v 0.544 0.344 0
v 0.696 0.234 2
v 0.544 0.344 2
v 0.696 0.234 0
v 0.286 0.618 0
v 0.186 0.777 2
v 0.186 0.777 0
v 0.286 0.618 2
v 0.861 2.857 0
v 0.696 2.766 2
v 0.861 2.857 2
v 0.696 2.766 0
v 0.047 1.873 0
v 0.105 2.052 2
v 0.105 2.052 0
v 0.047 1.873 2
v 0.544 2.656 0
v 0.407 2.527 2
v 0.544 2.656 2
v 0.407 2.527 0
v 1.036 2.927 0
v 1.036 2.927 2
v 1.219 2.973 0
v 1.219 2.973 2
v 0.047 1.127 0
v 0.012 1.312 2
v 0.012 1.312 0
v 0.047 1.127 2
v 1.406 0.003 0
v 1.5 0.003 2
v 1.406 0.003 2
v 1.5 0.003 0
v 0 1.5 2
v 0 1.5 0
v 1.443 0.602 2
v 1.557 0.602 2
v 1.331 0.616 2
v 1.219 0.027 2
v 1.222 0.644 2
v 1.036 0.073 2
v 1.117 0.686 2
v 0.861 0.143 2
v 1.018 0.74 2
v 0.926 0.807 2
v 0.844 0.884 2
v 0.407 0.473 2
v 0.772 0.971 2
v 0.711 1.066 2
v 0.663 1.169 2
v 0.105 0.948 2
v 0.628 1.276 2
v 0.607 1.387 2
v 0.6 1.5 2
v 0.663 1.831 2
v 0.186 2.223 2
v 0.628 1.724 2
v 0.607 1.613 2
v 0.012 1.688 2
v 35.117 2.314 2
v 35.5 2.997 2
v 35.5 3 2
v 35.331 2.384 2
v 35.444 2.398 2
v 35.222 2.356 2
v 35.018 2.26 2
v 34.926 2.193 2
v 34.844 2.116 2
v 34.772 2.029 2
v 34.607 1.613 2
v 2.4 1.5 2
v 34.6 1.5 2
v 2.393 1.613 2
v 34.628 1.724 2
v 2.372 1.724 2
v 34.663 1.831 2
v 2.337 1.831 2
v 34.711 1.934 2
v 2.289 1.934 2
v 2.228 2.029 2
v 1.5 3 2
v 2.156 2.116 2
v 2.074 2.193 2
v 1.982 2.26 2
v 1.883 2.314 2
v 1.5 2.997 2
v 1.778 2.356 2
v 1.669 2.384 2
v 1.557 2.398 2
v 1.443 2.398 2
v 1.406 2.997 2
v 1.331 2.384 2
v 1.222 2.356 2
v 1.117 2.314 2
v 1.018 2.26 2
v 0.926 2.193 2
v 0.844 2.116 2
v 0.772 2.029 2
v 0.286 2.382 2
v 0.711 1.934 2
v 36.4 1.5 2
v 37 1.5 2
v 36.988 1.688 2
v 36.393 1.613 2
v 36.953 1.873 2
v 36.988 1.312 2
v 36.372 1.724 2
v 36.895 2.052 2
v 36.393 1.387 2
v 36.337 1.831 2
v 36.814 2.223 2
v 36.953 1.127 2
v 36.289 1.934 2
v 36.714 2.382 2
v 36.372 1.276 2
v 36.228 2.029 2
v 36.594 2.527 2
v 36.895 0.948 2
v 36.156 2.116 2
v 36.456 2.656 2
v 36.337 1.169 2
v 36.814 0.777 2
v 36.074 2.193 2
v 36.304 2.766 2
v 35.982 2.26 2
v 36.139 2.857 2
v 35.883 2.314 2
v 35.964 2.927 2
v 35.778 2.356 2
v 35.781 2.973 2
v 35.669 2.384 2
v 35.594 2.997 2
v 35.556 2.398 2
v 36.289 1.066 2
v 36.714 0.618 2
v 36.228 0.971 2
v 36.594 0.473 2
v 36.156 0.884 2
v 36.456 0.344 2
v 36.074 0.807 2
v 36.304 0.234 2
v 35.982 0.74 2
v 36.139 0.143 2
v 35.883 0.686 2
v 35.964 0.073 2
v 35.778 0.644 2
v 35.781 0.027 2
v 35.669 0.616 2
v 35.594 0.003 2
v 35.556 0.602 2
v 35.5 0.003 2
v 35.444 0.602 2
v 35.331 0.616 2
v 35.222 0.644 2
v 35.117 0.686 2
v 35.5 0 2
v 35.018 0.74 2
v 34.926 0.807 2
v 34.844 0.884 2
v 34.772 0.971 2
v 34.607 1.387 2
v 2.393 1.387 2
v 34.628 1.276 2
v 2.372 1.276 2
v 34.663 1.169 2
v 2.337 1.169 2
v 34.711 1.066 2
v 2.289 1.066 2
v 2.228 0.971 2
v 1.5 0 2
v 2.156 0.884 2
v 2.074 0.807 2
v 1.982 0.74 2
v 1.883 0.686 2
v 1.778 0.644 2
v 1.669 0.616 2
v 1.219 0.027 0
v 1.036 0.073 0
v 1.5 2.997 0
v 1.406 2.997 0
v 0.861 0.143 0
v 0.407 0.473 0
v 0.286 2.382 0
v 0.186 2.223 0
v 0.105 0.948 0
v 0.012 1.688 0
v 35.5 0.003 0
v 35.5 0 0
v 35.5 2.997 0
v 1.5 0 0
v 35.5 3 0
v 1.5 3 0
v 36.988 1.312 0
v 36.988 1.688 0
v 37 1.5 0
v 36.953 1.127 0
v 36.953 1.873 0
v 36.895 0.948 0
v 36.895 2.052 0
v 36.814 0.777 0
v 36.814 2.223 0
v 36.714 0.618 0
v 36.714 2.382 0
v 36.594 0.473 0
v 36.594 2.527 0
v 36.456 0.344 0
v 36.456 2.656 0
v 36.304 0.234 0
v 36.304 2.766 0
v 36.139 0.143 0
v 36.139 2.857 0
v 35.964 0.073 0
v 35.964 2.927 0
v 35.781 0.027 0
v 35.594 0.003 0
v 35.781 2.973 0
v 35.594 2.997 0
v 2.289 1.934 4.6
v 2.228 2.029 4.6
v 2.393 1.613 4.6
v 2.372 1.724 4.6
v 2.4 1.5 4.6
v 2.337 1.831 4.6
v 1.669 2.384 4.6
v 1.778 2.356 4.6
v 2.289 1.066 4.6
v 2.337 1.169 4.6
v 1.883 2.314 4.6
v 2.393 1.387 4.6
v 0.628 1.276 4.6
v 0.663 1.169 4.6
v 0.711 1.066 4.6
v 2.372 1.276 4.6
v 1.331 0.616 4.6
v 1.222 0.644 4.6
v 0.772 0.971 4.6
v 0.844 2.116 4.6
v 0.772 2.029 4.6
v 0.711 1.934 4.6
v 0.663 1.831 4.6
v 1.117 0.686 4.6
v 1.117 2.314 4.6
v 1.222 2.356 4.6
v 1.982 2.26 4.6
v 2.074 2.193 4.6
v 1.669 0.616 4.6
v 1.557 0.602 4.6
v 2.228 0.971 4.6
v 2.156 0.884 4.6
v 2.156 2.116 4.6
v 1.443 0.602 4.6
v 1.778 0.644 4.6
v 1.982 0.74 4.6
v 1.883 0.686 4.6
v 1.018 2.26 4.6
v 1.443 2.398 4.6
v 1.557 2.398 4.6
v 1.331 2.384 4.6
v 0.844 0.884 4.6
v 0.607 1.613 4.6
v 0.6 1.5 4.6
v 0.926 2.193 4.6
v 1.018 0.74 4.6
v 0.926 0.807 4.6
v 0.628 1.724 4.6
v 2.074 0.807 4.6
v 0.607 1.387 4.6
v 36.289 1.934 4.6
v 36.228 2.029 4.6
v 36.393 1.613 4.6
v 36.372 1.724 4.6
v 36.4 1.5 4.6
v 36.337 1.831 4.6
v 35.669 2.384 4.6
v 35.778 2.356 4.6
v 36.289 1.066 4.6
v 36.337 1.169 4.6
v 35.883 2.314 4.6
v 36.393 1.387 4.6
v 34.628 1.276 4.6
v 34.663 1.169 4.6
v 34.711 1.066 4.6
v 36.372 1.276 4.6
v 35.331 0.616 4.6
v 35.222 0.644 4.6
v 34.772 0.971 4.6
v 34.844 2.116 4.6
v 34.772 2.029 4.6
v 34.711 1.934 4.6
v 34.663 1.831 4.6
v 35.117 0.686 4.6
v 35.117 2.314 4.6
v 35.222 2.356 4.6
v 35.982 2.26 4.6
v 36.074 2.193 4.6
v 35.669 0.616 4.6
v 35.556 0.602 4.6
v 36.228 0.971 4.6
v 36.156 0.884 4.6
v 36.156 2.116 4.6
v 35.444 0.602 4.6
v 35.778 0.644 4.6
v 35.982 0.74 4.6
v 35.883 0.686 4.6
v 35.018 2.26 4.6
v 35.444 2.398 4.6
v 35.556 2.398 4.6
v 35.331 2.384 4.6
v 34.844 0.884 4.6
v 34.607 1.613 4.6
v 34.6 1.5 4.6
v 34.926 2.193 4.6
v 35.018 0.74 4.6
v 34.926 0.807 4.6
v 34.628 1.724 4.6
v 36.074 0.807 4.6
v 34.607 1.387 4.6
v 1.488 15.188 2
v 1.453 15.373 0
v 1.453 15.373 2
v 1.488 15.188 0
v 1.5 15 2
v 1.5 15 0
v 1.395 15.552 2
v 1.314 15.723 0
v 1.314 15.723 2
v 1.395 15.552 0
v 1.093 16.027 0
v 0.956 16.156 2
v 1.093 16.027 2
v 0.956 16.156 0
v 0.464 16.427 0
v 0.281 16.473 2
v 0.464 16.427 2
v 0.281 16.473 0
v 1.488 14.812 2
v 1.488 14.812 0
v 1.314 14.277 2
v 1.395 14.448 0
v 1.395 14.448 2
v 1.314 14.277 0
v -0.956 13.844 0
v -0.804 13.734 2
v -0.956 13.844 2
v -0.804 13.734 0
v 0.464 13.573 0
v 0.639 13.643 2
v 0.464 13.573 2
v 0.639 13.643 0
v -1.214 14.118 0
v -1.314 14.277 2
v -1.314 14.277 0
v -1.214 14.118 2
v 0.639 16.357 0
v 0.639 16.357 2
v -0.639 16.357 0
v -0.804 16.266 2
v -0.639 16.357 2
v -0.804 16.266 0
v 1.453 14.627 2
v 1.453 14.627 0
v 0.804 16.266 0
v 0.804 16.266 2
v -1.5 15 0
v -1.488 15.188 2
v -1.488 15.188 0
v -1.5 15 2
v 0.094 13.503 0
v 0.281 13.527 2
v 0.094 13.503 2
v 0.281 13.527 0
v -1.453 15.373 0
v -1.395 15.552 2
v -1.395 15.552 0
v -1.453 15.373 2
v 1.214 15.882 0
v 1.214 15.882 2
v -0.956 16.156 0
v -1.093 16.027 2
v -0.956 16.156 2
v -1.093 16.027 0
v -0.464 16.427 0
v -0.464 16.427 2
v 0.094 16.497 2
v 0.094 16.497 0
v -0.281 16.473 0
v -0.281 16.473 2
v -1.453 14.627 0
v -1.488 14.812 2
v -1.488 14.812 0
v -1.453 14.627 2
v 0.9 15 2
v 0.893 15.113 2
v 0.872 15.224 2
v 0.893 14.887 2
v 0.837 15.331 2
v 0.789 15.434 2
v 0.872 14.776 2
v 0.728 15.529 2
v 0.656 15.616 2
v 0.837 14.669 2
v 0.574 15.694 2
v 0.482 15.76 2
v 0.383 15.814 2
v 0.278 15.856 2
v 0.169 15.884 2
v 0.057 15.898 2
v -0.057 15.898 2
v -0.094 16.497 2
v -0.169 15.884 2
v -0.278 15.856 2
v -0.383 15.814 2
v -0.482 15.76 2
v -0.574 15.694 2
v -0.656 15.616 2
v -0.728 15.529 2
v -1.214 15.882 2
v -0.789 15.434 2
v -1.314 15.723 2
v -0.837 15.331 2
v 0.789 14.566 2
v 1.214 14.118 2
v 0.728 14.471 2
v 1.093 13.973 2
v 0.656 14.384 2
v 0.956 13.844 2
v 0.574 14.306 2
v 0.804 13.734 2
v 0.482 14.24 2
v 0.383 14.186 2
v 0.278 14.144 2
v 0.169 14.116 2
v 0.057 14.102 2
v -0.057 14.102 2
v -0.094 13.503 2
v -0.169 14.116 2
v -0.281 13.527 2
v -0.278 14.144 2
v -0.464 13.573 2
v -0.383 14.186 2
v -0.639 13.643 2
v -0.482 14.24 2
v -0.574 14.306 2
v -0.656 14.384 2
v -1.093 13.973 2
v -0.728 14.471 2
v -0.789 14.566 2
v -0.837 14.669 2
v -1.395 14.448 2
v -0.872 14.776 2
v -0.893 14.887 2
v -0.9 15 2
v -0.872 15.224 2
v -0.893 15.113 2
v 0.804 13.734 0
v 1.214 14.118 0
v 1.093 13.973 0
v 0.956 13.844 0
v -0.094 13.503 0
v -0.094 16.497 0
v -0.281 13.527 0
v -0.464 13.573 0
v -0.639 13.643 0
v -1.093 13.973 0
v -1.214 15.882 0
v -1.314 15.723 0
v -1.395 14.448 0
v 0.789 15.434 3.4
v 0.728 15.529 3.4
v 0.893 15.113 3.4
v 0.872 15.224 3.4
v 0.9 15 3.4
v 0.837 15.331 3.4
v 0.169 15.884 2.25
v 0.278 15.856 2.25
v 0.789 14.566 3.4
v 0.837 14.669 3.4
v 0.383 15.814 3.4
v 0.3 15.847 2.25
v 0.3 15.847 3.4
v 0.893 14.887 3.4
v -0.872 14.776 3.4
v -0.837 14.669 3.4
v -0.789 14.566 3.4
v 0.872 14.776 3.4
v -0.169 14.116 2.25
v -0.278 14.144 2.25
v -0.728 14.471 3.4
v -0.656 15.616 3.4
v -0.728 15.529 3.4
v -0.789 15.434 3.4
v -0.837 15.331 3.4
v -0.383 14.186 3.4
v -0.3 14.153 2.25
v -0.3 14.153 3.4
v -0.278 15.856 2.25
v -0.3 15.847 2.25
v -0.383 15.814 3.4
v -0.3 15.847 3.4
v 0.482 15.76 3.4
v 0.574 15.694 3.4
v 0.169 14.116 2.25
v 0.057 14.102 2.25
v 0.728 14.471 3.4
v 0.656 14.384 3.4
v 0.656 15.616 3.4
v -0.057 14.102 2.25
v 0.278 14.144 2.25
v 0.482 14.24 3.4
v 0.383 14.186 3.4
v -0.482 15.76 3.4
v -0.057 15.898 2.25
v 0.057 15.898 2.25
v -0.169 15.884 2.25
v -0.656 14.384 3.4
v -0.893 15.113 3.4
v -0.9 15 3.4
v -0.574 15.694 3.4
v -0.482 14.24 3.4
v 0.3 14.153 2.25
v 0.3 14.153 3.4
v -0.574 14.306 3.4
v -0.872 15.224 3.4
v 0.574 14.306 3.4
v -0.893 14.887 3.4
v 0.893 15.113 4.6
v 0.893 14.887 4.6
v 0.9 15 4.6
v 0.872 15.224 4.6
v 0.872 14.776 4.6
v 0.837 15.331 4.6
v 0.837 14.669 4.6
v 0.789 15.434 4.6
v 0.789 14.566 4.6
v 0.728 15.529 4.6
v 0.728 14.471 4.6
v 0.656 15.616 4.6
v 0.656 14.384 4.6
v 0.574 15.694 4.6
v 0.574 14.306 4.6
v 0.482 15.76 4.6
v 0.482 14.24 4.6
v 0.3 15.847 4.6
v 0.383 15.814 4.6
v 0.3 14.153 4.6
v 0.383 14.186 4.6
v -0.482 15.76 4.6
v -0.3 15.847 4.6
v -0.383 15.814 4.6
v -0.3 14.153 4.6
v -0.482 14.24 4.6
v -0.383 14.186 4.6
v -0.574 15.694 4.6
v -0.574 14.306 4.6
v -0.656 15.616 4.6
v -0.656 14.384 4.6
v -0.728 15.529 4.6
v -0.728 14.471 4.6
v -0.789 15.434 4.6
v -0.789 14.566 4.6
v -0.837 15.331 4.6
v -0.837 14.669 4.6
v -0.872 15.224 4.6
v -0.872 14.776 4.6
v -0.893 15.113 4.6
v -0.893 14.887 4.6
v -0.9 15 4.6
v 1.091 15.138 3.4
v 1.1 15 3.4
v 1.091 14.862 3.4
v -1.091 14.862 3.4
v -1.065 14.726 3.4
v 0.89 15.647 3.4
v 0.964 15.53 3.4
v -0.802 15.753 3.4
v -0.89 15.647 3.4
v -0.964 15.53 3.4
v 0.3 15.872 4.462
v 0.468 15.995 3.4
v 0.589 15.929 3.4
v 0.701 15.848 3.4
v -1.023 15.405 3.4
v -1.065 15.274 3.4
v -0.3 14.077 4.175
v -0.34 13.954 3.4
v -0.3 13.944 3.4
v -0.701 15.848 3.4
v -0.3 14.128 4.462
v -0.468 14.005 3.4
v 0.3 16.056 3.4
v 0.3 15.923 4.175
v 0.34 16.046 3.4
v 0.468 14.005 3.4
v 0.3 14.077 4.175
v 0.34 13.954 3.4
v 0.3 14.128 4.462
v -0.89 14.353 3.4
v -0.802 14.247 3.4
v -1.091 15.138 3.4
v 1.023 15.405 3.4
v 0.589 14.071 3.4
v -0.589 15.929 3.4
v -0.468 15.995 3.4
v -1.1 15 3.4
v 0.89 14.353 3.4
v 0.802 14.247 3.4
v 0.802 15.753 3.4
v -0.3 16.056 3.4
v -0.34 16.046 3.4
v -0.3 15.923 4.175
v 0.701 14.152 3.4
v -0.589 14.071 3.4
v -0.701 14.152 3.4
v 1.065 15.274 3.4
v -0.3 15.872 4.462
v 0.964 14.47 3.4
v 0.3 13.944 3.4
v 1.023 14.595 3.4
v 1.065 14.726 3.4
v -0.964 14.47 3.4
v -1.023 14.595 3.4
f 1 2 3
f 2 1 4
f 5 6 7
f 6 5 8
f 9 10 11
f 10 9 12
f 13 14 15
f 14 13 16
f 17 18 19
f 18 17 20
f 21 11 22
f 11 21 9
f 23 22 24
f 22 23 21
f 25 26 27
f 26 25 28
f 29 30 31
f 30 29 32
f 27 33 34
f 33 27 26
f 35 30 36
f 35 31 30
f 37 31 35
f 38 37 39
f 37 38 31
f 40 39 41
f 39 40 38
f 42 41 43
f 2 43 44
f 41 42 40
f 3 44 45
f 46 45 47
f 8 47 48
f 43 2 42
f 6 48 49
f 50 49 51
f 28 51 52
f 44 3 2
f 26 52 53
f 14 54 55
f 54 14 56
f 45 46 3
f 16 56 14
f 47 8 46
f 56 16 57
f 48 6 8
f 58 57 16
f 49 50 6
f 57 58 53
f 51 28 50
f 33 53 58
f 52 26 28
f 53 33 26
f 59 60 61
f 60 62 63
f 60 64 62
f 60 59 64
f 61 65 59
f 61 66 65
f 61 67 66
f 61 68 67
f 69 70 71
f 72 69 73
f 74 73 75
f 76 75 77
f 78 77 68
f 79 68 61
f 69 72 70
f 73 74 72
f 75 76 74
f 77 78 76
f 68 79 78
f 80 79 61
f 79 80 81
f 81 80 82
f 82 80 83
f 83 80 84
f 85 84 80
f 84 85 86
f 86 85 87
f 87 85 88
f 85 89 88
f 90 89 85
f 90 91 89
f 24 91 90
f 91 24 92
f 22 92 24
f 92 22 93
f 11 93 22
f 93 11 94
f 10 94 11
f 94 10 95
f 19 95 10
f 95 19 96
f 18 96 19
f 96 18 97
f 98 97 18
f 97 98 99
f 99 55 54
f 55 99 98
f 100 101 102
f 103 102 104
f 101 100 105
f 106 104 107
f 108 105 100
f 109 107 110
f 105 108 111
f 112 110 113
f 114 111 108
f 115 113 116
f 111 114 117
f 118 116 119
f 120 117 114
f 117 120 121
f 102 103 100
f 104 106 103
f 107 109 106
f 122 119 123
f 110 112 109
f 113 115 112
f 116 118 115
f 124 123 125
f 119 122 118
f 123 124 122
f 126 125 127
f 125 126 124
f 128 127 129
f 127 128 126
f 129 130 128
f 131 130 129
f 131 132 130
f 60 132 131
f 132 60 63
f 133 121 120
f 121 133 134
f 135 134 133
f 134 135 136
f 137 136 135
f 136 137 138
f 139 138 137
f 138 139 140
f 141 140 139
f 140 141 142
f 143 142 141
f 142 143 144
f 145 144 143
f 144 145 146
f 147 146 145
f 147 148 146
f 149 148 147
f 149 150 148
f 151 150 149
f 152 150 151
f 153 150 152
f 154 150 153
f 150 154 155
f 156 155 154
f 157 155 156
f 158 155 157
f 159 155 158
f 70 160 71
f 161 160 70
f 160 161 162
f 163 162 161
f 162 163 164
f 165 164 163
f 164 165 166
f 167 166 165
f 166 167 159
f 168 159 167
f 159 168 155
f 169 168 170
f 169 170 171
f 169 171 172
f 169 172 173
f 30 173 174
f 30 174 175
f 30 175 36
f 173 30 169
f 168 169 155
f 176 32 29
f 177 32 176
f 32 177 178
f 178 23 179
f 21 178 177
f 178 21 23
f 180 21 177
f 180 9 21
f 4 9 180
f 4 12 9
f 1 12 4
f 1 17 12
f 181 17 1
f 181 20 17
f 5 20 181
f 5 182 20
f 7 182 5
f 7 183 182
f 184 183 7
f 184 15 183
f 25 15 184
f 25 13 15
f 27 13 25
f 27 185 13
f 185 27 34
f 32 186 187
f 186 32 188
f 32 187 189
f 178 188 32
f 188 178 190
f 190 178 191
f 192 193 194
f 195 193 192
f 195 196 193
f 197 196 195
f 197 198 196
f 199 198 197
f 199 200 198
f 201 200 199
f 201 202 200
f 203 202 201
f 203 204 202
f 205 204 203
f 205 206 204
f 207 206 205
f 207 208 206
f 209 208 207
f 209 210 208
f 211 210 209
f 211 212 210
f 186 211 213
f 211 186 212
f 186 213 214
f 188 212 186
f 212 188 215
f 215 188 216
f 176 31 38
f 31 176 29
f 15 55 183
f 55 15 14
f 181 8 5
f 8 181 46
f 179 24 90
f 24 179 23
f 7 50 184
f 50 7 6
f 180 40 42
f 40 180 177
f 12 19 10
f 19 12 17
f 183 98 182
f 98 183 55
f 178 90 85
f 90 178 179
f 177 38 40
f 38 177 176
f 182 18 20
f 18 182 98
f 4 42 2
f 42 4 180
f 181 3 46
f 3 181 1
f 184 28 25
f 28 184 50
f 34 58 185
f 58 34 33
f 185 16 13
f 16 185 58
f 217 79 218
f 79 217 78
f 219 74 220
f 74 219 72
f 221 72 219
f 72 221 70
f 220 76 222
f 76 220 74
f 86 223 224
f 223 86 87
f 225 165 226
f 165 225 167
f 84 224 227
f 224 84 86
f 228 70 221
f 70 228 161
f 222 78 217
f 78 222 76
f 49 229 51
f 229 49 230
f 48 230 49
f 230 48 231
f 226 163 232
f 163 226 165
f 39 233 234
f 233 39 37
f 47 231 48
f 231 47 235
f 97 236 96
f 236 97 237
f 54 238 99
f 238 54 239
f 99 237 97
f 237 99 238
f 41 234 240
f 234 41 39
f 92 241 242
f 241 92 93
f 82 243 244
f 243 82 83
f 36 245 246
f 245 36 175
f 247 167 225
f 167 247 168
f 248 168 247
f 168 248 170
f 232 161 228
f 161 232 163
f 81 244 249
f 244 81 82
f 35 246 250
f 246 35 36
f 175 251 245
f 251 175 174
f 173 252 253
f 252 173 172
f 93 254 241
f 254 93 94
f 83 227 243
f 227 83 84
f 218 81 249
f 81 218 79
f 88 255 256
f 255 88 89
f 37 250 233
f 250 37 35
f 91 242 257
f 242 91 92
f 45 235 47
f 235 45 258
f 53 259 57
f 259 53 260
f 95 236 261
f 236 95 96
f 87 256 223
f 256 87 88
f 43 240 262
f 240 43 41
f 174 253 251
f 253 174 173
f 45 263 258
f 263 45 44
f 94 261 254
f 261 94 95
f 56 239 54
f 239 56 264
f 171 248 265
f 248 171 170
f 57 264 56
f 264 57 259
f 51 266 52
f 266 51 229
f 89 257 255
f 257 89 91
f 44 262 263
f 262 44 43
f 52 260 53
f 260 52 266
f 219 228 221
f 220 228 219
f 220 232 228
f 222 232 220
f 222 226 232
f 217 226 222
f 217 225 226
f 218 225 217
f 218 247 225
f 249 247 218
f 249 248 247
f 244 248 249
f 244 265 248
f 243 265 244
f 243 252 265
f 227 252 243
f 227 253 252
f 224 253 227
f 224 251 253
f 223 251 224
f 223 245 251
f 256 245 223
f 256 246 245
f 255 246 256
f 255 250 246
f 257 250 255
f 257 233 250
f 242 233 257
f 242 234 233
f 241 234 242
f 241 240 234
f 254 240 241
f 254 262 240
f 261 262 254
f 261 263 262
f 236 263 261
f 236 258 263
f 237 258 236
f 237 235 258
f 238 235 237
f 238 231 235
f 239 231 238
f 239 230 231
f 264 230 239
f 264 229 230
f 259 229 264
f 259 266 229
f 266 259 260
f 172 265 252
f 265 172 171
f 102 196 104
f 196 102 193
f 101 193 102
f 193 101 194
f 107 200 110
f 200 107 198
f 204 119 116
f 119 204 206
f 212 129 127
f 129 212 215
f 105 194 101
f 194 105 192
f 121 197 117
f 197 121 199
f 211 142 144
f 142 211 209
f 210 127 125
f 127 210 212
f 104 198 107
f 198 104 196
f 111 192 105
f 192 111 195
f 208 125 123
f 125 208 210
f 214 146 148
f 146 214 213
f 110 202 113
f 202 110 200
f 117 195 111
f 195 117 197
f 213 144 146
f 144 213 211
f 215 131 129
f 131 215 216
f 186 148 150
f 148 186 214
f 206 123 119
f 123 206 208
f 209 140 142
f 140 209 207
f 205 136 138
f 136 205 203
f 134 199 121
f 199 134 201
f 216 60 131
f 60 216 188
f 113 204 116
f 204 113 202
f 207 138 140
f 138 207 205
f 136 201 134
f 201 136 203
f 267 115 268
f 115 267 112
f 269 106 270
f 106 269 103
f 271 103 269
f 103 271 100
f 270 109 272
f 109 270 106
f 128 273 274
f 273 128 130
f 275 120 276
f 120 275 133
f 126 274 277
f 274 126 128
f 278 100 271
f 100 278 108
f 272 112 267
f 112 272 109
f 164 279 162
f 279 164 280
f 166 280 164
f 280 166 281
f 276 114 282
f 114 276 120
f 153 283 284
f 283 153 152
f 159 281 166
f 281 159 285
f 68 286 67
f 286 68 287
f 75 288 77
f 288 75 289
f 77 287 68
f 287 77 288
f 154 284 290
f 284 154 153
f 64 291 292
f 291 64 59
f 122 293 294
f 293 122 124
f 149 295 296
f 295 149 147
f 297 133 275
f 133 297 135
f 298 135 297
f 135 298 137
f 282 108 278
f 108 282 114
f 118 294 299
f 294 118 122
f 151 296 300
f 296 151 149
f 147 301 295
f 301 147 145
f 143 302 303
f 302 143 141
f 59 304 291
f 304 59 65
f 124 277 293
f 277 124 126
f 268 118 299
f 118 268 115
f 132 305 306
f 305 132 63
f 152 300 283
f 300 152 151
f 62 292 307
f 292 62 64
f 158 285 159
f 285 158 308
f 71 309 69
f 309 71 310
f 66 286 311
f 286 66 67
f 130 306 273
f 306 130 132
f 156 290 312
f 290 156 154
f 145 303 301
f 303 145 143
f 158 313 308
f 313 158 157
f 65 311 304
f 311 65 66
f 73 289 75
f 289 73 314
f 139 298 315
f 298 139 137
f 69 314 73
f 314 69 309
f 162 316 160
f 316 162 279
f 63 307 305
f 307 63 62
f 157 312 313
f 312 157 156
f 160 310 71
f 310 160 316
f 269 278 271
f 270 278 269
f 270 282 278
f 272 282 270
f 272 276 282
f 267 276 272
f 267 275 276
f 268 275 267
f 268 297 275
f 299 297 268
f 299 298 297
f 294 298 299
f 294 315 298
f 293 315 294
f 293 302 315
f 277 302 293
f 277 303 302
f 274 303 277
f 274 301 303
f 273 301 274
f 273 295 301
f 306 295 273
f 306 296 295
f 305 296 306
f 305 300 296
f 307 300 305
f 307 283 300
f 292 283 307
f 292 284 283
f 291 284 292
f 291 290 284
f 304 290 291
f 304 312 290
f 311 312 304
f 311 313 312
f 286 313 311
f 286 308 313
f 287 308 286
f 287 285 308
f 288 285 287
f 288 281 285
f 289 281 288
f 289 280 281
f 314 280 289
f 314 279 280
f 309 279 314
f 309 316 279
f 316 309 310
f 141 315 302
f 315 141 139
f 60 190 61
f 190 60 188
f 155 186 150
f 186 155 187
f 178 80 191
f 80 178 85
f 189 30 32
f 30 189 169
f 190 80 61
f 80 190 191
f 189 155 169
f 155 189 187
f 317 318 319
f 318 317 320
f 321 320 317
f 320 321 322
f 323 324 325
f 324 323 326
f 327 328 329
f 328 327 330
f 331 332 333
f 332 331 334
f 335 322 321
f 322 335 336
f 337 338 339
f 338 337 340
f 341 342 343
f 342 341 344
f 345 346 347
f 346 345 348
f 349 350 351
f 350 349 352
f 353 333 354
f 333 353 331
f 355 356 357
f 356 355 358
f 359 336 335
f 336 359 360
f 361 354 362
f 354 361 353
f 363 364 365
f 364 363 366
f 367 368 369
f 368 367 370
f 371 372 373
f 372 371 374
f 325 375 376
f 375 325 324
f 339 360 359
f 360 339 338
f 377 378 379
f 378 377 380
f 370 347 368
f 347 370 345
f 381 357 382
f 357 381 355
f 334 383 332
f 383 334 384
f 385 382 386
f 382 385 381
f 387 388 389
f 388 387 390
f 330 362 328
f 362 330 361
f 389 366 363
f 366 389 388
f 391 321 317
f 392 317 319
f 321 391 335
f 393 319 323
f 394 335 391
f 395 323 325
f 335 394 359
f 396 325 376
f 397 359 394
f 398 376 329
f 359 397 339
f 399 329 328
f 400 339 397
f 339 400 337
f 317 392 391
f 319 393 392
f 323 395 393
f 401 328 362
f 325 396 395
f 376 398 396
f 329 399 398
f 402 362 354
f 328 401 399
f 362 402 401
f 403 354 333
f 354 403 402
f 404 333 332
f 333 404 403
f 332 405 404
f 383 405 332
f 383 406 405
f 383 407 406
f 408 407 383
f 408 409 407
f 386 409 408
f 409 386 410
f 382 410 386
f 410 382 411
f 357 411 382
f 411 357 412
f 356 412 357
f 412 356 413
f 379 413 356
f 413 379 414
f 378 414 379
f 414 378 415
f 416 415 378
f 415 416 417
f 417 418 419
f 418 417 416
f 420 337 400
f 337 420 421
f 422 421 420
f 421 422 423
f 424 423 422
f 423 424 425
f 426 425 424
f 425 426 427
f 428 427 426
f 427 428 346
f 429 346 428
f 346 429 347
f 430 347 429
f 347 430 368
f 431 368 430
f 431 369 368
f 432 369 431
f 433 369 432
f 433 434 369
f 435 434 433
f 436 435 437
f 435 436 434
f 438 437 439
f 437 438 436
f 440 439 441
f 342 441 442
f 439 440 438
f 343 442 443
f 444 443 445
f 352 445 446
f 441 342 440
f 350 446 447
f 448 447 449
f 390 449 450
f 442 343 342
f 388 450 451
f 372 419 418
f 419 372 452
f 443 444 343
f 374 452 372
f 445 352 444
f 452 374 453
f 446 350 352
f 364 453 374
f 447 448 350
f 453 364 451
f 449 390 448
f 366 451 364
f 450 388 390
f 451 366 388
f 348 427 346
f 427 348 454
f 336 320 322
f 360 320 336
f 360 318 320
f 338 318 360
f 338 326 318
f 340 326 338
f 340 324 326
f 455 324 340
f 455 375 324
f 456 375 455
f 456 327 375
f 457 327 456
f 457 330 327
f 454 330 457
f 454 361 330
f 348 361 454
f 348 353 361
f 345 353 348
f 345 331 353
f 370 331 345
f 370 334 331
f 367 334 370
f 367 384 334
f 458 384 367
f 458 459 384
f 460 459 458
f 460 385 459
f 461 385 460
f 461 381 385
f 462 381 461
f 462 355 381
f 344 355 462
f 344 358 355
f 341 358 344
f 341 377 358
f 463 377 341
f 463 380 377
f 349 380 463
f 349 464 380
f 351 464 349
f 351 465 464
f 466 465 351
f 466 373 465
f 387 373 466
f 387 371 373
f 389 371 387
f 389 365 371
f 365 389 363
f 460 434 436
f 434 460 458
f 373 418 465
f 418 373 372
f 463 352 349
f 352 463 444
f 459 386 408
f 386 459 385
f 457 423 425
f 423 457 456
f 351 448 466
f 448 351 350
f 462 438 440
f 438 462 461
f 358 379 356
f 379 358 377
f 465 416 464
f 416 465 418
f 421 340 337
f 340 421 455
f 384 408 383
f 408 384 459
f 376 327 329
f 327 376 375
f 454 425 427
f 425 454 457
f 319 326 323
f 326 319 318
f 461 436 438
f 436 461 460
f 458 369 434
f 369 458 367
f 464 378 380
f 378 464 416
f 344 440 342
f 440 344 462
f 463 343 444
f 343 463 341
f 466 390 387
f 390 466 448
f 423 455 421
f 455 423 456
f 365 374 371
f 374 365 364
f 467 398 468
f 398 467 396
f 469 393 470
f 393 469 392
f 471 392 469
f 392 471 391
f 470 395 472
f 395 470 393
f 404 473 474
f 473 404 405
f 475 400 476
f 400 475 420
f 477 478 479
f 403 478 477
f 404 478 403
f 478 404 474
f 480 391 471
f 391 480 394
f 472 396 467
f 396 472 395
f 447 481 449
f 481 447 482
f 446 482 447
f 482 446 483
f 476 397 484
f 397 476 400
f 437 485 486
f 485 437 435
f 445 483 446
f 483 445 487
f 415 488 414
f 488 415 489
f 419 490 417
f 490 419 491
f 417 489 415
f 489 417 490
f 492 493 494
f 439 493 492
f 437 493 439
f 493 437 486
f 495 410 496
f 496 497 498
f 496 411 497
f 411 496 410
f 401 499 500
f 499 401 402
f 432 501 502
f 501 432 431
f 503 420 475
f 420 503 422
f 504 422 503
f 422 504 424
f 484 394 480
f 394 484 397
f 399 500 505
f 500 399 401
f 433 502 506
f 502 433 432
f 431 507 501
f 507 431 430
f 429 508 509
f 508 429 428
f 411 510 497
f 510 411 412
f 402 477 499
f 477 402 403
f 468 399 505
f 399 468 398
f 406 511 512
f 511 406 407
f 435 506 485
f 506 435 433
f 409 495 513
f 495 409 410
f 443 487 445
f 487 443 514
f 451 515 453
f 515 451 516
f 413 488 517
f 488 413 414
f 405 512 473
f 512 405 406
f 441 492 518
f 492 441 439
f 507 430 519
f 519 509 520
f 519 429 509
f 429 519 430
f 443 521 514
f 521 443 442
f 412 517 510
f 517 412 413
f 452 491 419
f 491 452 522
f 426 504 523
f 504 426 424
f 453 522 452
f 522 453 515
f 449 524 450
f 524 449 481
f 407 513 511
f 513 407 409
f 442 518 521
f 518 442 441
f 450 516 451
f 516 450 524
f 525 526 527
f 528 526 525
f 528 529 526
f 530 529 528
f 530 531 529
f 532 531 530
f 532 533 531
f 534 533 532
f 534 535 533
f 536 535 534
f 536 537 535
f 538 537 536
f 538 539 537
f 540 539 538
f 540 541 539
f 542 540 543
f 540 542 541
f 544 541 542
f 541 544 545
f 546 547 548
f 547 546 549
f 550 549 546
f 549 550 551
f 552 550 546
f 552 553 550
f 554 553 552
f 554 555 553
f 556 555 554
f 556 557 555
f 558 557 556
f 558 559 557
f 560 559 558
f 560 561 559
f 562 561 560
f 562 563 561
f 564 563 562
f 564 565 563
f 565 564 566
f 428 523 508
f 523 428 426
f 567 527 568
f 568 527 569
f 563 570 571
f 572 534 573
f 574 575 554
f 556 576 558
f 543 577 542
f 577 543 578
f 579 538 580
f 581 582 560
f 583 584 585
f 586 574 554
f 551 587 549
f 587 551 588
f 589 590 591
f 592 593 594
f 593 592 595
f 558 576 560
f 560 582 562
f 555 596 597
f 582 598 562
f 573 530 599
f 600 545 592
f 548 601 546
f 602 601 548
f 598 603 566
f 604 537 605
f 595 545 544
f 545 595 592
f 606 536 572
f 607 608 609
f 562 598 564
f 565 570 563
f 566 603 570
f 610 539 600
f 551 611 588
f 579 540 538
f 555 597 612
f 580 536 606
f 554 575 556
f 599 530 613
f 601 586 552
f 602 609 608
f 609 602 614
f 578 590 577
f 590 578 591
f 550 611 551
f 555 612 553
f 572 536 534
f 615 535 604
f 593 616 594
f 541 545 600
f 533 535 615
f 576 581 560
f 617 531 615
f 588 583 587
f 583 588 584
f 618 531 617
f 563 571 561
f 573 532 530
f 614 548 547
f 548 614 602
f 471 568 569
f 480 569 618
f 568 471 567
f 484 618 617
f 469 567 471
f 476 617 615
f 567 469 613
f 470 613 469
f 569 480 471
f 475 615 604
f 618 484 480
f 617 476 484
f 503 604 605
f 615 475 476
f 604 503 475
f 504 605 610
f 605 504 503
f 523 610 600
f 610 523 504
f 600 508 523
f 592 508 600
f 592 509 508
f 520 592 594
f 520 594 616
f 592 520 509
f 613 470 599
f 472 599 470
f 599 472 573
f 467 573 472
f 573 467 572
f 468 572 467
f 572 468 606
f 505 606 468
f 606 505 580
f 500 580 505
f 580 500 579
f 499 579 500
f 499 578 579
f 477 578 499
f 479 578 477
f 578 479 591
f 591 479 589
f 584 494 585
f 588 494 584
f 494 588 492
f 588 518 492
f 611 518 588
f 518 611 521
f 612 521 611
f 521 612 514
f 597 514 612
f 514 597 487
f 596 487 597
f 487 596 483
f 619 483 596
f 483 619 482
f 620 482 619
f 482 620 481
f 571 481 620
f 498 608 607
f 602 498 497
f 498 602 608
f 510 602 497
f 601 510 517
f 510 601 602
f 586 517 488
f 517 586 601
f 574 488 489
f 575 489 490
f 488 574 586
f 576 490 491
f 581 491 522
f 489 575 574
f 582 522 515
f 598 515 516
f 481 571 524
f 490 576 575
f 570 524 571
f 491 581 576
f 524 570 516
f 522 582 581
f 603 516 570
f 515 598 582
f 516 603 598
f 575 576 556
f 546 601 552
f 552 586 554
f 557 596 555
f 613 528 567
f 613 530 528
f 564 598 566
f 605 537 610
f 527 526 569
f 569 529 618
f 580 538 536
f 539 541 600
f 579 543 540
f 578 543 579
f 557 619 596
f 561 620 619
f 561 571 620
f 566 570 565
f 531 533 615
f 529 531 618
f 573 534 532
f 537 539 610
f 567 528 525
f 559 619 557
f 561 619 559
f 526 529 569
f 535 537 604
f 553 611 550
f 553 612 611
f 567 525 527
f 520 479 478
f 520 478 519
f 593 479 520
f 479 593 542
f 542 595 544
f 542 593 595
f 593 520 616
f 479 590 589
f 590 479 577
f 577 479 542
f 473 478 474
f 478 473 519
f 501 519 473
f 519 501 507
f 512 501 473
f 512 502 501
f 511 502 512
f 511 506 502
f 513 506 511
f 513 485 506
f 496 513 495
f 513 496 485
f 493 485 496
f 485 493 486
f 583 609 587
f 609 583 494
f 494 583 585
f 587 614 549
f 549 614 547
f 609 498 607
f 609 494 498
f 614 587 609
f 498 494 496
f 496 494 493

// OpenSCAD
$fn=50;

module tabbedCylinder(){
    difference(){
        union (){
            cylinder(h=2,d1=3,d2=3);
            cylinder(h=4.6,d1=1.8,d2=1.8);
            translate ([0,0,3.4]) cylinder(h=1.2,d1=2.2,d2=1.8);
        }
        translate ([0,0,3.5]) cube([.6,2.5,2.5],center=true);
    }
}
module EndCylinder(){
        union (){
            cylinder(h=2,d1=3,d2=3);
            cylinder(h=4.6,d1=1.8,d2=1.8);
        }
}

module steeringAxle(){
    //axis
    translate ([1.5,0,0]) cube([34,3,2]);
    //connector
    translate ([1.5,1.5,0]) EndCylinder();
    //connector
    translate ([35.5,1.5,0]) EndCylinder();
}

steeringAxle();
translate([0,15,0]) tabbedCylinder();
